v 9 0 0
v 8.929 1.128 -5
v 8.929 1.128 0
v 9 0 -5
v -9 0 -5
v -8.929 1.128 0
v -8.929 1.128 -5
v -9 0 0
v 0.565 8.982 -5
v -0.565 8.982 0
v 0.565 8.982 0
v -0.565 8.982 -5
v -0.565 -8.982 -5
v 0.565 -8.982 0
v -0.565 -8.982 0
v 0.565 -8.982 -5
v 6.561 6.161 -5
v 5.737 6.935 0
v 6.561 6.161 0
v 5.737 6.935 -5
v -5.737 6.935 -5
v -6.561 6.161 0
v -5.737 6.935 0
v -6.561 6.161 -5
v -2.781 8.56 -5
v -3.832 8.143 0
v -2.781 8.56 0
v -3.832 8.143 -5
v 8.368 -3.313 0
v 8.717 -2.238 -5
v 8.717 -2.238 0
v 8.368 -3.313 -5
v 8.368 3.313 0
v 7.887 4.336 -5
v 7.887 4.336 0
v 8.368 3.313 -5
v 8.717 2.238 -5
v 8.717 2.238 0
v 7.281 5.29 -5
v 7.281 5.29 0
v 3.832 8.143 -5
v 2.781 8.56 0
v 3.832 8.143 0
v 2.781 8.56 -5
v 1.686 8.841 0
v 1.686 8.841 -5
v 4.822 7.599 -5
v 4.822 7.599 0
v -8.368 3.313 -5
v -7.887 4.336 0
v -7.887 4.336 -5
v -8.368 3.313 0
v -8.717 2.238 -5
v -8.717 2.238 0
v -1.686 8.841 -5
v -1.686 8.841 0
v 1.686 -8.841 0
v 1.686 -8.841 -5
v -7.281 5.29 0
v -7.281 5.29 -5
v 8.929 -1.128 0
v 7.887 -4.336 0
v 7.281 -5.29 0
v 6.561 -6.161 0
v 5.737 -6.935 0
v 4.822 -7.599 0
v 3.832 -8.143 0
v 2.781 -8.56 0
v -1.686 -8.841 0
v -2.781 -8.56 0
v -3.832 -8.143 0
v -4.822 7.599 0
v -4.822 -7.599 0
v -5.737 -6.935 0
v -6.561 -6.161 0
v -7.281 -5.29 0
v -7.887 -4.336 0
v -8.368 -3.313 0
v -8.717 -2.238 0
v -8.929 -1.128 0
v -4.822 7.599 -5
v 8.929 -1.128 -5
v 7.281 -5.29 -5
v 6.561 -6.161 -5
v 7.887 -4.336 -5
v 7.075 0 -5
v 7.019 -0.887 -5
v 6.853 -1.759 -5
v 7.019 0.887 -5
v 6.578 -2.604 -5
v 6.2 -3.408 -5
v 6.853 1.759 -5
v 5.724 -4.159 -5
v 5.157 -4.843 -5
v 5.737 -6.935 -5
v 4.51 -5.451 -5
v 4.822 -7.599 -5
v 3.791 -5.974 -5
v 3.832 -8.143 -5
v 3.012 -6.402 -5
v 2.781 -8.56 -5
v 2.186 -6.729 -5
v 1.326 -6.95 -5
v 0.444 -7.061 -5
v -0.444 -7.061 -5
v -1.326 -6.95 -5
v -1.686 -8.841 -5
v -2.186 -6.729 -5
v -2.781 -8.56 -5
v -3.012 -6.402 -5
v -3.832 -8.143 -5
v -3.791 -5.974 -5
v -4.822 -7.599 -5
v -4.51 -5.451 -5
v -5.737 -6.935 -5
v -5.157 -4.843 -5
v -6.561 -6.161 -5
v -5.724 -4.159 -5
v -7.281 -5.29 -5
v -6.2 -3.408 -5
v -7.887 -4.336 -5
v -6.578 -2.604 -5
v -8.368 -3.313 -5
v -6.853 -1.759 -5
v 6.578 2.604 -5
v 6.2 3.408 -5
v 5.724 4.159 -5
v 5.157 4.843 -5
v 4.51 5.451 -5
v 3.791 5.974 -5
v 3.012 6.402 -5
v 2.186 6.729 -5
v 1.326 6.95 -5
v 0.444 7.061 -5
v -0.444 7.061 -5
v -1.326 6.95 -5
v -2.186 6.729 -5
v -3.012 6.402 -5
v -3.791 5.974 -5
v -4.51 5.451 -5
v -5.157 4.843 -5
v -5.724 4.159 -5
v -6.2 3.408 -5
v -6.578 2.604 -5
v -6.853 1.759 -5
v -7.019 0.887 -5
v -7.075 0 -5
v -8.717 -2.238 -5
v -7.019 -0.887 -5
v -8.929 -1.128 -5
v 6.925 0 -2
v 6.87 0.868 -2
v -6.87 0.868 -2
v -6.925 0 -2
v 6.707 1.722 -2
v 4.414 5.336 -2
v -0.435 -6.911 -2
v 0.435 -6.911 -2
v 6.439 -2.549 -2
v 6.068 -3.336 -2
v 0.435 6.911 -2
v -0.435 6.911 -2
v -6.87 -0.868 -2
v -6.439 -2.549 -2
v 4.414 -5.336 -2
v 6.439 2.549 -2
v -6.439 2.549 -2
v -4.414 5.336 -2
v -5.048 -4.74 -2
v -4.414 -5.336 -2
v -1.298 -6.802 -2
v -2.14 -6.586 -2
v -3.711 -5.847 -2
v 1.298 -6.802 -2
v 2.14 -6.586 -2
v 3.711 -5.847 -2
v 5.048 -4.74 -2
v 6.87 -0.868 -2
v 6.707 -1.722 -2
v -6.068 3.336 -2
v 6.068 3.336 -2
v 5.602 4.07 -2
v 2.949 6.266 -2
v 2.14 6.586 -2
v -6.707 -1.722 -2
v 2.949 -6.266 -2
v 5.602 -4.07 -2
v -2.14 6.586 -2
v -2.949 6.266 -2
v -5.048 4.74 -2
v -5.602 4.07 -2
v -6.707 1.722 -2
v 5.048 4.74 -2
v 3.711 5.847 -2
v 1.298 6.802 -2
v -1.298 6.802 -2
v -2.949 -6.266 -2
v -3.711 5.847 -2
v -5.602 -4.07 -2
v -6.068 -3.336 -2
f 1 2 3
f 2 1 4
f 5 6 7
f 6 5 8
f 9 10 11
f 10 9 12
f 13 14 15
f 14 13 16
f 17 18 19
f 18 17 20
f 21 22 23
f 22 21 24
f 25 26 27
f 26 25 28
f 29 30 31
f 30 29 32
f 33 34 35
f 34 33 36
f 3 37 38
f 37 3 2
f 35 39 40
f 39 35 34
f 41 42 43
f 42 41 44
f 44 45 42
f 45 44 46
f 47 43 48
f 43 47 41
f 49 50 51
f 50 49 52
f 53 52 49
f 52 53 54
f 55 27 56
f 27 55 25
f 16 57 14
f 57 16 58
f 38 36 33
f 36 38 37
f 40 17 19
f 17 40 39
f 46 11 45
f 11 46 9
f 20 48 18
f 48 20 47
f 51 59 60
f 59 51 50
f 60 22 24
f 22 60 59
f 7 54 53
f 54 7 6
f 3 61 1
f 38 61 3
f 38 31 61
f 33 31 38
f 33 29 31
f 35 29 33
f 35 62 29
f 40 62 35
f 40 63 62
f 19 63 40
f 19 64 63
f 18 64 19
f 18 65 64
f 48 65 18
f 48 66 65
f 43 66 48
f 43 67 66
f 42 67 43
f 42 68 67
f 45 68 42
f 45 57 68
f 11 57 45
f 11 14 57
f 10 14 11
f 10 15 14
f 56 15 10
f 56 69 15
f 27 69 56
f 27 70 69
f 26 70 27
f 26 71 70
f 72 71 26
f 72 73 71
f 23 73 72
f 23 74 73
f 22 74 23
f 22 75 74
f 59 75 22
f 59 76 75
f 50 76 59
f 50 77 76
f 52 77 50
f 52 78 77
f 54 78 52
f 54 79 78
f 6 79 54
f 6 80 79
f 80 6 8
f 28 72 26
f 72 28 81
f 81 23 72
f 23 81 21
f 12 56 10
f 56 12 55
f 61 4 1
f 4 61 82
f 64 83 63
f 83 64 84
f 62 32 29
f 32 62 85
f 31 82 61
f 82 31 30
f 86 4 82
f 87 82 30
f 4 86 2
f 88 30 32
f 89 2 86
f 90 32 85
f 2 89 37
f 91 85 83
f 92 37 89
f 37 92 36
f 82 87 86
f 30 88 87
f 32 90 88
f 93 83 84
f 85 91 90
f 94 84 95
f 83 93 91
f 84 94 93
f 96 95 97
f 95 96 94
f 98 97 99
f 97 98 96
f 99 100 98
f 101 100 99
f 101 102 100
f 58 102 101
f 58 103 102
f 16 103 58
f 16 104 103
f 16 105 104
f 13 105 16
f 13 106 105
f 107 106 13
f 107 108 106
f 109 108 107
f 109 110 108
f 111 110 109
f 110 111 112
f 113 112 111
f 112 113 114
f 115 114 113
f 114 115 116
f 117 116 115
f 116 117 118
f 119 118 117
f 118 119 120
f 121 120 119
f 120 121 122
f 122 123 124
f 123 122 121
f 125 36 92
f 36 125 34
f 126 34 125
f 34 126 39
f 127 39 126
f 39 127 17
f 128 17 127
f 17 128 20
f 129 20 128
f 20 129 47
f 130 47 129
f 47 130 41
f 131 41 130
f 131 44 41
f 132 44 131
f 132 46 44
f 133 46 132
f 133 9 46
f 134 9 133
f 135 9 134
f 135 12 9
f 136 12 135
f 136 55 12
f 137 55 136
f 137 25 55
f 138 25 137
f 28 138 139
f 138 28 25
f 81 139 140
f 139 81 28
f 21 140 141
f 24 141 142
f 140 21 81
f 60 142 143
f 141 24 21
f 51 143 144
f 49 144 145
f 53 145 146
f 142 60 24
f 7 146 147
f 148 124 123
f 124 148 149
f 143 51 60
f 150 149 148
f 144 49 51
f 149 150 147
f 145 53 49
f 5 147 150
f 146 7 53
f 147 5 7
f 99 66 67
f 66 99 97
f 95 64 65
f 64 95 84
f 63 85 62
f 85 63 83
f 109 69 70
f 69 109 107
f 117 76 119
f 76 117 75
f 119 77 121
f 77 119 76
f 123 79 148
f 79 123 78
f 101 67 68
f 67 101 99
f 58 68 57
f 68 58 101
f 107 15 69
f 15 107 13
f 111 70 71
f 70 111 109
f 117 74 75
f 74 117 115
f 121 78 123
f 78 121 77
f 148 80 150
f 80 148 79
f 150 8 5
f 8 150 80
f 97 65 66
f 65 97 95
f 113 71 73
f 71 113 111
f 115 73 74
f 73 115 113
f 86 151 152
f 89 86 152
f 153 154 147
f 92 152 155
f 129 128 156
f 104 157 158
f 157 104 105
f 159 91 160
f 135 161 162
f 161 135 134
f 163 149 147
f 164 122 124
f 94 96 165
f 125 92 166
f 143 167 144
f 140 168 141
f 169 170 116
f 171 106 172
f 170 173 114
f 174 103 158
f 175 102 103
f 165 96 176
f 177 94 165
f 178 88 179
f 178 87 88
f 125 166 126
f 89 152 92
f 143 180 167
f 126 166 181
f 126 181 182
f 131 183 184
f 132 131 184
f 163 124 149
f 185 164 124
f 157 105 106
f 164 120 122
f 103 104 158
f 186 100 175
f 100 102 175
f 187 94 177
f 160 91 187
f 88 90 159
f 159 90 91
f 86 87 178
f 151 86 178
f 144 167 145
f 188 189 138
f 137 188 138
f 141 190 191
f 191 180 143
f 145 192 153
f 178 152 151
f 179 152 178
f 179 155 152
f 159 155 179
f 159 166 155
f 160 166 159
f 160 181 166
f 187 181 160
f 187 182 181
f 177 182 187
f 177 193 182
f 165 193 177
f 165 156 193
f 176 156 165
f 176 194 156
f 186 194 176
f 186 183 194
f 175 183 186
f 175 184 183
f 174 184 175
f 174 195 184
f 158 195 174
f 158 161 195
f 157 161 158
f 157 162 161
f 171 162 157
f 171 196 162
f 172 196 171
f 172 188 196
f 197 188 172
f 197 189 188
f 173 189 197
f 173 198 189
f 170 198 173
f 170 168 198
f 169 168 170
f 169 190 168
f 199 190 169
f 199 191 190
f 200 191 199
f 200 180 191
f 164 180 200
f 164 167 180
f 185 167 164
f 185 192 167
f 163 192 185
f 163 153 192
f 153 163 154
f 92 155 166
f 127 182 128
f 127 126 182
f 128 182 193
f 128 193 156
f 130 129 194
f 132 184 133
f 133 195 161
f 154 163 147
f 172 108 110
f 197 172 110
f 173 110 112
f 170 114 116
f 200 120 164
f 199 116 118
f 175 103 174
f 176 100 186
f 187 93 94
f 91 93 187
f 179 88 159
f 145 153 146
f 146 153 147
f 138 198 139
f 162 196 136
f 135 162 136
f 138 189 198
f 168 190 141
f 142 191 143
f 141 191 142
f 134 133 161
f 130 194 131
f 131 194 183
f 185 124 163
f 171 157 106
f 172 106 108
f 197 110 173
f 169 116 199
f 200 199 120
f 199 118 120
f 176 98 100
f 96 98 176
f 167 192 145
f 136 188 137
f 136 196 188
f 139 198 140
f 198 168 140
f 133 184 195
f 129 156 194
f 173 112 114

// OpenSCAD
$fn = 50;

difference() {
	union() {
		translate(v = [0, 0, -5.0]) {
			cylinder(h = 5, r = 9.0);
		}
	}
	union() {
		#translate(v = [0, 0, -5.0]) {
			cylinder(h = 3, r1 = 7.075, r2 = 6.925);
		}
	}
}
